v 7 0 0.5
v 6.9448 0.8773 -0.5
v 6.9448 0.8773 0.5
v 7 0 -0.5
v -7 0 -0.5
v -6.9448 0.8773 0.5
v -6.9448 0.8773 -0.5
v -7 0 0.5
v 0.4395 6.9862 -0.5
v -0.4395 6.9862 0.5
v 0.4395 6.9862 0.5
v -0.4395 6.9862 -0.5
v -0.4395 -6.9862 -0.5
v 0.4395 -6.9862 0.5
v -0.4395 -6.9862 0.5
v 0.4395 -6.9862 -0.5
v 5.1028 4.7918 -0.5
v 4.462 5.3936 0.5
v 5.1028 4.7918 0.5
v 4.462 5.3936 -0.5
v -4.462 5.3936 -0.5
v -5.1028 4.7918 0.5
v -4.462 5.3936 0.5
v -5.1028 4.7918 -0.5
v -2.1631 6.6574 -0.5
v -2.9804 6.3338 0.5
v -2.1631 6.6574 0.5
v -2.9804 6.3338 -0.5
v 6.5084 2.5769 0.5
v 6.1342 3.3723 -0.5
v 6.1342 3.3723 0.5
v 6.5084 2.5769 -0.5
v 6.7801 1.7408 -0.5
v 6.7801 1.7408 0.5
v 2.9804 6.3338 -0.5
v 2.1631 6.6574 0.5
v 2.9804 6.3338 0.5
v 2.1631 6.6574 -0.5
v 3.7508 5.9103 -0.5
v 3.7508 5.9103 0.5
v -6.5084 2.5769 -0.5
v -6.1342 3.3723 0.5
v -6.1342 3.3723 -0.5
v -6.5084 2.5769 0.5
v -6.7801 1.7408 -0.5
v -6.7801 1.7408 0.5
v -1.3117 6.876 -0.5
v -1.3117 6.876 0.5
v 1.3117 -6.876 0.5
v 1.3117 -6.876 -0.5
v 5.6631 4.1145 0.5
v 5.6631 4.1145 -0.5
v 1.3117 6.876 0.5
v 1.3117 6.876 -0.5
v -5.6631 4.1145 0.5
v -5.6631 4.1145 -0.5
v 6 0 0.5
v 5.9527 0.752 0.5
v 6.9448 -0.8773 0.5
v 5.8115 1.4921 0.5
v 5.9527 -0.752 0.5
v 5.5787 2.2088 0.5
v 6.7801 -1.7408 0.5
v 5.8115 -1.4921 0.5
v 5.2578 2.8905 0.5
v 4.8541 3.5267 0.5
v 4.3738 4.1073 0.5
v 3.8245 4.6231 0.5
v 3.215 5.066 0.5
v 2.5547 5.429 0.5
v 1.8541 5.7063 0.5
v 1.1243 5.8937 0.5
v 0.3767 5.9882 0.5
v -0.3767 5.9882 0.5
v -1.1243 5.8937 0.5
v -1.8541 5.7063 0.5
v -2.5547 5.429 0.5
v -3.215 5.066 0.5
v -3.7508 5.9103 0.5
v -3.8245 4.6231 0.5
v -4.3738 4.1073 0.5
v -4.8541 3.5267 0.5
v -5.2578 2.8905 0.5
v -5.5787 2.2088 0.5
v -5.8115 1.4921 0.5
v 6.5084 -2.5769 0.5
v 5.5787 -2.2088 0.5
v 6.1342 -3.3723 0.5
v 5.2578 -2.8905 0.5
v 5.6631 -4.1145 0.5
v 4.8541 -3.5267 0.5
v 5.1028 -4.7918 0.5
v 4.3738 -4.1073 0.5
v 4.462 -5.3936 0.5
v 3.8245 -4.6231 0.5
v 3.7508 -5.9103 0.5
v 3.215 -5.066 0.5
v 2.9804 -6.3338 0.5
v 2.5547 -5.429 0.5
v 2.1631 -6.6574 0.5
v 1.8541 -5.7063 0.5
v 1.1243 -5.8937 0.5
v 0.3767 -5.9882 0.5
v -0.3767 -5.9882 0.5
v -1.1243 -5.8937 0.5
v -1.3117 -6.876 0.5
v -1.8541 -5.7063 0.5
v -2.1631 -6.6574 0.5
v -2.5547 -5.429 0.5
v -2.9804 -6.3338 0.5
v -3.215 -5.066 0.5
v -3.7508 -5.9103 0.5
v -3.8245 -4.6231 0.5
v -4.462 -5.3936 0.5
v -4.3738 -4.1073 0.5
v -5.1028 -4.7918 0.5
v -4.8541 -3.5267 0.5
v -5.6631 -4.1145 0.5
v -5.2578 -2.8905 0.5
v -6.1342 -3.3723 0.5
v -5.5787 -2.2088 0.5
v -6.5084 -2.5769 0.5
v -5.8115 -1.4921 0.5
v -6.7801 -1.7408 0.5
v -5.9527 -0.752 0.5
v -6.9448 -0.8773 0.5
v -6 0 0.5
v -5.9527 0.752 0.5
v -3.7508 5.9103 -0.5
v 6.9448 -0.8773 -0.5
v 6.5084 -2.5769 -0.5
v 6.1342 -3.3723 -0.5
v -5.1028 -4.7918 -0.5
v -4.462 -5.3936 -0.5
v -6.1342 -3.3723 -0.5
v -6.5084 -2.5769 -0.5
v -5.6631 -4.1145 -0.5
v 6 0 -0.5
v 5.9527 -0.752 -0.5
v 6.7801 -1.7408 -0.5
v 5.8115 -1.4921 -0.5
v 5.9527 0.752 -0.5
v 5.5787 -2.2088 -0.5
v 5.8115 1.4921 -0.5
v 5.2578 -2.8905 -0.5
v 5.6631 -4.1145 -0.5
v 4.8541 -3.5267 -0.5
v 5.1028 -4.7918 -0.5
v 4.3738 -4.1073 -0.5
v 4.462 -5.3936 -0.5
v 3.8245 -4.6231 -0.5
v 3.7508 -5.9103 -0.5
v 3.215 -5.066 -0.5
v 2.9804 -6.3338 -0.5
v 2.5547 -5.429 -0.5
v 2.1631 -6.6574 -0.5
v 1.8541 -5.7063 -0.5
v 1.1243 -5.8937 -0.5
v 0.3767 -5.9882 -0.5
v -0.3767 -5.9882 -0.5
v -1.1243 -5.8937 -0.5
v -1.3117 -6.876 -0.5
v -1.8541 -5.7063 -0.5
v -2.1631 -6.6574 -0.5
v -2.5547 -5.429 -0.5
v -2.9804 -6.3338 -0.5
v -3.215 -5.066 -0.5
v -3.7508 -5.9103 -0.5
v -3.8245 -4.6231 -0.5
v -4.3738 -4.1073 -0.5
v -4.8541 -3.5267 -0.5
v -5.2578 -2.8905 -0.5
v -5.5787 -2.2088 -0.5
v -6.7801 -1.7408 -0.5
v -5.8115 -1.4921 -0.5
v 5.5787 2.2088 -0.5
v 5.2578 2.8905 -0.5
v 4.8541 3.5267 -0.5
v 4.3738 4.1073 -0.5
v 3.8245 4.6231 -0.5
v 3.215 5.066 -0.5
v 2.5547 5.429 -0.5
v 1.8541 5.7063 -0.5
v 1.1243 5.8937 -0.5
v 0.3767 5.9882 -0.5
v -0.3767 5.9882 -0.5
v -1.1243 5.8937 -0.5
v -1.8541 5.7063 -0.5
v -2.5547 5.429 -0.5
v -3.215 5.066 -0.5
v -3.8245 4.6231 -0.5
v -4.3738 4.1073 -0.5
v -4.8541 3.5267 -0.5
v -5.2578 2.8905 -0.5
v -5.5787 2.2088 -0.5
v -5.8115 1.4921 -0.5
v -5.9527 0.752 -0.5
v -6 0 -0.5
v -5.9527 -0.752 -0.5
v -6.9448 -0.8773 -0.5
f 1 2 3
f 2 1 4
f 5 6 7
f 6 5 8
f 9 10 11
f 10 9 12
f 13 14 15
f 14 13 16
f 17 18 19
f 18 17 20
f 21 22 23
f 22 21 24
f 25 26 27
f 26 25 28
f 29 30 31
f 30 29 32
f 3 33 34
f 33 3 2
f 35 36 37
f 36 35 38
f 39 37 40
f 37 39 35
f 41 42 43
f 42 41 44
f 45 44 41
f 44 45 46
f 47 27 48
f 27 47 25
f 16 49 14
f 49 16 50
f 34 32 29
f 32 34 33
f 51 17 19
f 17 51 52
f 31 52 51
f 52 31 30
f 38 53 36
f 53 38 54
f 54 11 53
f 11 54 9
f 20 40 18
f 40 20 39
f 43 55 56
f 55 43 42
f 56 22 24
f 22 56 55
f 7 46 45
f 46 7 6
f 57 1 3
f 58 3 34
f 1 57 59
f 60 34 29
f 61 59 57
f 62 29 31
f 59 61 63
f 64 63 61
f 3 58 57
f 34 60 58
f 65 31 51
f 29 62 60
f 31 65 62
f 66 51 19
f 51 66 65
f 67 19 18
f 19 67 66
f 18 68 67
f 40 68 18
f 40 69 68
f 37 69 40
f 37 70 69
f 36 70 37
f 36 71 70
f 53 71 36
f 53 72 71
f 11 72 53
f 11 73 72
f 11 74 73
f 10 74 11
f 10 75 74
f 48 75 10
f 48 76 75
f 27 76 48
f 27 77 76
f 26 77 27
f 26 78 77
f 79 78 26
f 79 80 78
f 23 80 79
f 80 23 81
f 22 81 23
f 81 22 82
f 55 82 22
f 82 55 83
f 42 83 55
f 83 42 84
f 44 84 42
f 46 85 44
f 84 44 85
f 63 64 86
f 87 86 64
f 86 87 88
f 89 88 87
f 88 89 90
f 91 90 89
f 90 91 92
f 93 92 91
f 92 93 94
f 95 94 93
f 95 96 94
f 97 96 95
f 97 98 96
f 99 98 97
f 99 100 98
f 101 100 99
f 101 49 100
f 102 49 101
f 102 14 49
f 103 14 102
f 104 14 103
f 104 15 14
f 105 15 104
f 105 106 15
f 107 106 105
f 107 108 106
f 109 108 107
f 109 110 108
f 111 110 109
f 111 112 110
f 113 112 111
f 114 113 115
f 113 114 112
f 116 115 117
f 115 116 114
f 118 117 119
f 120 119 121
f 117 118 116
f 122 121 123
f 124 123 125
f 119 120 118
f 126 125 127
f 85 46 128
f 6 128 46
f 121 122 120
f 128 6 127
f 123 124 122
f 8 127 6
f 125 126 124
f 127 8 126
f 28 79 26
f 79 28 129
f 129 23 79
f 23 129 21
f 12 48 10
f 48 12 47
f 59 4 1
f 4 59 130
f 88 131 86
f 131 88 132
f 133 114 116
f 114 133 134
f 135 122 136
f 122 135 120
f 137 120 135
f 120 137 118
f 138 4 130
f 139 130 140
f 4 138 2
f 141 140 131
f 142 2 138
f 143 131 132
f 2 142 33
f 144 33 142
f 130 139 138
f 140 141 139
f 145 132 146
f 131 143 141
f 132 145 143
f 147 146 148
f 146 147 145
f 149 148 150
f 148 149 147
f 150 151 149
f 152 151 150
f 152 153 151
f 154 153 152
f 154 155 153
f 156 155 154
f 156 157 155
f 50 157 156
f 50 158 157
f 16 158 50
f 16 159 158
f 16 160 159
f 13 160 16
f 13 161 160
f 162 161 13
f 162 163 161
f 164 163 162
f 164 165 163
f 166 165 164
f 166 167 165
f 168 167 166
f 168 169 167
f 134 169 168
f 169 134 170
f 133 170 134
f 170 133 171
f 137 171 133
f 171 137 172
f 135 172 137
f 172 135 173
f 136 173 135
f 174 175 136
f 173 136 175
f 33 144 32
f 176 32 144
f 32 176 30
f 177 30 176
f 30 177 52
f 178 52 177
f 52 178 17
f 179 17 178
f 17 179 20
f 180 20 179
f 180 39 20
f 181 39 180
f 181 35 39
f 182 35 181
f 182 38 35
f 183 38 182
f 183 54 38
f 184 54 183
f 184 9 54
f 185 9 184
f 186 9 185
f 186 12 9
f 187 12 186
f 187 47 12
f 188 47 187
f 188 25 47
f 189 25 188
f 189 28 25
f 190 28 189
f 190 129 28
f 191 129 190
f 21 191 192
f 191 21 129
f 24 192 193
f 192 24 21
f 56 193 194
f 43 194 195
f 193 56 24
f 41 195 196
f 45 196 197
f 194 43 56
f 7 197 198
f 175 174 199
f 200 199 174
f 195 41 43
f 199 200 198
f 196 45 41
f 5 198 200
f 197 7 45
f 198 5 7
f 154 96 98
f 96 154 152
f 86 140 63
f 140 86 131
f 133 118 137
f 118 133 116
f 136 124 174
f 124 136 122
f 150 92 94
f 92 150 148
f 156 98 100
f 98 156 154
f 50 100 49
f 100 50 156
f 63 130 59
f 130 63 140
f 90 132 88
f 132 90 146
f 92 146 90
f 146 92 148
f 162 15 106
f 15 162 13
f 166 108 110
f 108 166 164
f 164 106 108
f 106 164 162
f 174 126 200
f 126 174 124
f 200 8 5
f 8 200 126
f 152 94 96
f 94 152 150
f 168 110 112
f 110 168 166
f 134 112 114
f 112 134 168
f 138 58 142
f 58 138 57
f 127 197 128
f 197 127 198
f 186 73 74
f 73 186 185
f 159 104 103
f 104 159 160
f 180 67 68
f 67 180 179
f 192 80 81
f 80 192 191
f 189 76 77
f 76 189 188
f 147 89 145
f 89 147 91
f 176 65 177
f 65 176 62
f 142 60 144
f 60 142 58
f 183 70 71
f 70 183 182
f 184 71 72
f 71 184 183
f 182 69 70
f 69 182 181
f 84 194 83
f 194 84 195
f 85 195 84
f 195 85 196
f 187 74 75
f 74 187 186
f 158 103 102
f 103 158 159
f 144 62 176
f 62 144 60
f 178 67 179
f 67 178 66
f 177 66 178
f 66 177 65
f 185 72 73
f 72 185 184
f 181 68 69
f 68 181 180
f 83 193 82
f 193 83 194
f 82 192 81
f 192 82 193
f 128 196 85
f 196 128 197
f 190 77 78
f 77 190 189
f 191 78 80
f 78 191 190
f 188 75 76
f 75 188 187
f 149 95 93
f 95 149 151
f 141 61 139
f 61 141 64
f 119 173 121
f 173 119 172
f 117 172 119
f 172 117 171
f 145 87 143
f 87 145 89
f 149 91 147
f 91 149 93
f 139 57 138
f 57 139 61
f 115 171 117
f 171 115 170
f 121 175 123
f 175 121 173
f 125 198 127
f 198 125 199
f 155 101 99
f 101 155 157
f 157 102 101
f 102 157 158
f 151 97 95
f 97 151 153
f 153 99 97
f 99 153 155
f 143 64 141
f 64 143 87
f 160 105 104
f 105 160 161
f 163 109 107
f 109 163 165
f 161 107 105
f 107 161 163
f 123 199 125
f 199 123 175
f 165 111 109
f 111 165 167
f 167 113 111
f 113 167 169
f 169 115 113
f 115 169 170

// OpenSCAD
$fn = 50;


difference() {
	union() {
		translate(v = [0, 0, -0.5000000000]) {
			cylinder(h = 1, r = 7.0000000000);
		}
	}
	union() {
		translate(v = [0, 0, -100.0000000000]) {
			cylinder(h = 200, r = 6);
		}
	}
}
